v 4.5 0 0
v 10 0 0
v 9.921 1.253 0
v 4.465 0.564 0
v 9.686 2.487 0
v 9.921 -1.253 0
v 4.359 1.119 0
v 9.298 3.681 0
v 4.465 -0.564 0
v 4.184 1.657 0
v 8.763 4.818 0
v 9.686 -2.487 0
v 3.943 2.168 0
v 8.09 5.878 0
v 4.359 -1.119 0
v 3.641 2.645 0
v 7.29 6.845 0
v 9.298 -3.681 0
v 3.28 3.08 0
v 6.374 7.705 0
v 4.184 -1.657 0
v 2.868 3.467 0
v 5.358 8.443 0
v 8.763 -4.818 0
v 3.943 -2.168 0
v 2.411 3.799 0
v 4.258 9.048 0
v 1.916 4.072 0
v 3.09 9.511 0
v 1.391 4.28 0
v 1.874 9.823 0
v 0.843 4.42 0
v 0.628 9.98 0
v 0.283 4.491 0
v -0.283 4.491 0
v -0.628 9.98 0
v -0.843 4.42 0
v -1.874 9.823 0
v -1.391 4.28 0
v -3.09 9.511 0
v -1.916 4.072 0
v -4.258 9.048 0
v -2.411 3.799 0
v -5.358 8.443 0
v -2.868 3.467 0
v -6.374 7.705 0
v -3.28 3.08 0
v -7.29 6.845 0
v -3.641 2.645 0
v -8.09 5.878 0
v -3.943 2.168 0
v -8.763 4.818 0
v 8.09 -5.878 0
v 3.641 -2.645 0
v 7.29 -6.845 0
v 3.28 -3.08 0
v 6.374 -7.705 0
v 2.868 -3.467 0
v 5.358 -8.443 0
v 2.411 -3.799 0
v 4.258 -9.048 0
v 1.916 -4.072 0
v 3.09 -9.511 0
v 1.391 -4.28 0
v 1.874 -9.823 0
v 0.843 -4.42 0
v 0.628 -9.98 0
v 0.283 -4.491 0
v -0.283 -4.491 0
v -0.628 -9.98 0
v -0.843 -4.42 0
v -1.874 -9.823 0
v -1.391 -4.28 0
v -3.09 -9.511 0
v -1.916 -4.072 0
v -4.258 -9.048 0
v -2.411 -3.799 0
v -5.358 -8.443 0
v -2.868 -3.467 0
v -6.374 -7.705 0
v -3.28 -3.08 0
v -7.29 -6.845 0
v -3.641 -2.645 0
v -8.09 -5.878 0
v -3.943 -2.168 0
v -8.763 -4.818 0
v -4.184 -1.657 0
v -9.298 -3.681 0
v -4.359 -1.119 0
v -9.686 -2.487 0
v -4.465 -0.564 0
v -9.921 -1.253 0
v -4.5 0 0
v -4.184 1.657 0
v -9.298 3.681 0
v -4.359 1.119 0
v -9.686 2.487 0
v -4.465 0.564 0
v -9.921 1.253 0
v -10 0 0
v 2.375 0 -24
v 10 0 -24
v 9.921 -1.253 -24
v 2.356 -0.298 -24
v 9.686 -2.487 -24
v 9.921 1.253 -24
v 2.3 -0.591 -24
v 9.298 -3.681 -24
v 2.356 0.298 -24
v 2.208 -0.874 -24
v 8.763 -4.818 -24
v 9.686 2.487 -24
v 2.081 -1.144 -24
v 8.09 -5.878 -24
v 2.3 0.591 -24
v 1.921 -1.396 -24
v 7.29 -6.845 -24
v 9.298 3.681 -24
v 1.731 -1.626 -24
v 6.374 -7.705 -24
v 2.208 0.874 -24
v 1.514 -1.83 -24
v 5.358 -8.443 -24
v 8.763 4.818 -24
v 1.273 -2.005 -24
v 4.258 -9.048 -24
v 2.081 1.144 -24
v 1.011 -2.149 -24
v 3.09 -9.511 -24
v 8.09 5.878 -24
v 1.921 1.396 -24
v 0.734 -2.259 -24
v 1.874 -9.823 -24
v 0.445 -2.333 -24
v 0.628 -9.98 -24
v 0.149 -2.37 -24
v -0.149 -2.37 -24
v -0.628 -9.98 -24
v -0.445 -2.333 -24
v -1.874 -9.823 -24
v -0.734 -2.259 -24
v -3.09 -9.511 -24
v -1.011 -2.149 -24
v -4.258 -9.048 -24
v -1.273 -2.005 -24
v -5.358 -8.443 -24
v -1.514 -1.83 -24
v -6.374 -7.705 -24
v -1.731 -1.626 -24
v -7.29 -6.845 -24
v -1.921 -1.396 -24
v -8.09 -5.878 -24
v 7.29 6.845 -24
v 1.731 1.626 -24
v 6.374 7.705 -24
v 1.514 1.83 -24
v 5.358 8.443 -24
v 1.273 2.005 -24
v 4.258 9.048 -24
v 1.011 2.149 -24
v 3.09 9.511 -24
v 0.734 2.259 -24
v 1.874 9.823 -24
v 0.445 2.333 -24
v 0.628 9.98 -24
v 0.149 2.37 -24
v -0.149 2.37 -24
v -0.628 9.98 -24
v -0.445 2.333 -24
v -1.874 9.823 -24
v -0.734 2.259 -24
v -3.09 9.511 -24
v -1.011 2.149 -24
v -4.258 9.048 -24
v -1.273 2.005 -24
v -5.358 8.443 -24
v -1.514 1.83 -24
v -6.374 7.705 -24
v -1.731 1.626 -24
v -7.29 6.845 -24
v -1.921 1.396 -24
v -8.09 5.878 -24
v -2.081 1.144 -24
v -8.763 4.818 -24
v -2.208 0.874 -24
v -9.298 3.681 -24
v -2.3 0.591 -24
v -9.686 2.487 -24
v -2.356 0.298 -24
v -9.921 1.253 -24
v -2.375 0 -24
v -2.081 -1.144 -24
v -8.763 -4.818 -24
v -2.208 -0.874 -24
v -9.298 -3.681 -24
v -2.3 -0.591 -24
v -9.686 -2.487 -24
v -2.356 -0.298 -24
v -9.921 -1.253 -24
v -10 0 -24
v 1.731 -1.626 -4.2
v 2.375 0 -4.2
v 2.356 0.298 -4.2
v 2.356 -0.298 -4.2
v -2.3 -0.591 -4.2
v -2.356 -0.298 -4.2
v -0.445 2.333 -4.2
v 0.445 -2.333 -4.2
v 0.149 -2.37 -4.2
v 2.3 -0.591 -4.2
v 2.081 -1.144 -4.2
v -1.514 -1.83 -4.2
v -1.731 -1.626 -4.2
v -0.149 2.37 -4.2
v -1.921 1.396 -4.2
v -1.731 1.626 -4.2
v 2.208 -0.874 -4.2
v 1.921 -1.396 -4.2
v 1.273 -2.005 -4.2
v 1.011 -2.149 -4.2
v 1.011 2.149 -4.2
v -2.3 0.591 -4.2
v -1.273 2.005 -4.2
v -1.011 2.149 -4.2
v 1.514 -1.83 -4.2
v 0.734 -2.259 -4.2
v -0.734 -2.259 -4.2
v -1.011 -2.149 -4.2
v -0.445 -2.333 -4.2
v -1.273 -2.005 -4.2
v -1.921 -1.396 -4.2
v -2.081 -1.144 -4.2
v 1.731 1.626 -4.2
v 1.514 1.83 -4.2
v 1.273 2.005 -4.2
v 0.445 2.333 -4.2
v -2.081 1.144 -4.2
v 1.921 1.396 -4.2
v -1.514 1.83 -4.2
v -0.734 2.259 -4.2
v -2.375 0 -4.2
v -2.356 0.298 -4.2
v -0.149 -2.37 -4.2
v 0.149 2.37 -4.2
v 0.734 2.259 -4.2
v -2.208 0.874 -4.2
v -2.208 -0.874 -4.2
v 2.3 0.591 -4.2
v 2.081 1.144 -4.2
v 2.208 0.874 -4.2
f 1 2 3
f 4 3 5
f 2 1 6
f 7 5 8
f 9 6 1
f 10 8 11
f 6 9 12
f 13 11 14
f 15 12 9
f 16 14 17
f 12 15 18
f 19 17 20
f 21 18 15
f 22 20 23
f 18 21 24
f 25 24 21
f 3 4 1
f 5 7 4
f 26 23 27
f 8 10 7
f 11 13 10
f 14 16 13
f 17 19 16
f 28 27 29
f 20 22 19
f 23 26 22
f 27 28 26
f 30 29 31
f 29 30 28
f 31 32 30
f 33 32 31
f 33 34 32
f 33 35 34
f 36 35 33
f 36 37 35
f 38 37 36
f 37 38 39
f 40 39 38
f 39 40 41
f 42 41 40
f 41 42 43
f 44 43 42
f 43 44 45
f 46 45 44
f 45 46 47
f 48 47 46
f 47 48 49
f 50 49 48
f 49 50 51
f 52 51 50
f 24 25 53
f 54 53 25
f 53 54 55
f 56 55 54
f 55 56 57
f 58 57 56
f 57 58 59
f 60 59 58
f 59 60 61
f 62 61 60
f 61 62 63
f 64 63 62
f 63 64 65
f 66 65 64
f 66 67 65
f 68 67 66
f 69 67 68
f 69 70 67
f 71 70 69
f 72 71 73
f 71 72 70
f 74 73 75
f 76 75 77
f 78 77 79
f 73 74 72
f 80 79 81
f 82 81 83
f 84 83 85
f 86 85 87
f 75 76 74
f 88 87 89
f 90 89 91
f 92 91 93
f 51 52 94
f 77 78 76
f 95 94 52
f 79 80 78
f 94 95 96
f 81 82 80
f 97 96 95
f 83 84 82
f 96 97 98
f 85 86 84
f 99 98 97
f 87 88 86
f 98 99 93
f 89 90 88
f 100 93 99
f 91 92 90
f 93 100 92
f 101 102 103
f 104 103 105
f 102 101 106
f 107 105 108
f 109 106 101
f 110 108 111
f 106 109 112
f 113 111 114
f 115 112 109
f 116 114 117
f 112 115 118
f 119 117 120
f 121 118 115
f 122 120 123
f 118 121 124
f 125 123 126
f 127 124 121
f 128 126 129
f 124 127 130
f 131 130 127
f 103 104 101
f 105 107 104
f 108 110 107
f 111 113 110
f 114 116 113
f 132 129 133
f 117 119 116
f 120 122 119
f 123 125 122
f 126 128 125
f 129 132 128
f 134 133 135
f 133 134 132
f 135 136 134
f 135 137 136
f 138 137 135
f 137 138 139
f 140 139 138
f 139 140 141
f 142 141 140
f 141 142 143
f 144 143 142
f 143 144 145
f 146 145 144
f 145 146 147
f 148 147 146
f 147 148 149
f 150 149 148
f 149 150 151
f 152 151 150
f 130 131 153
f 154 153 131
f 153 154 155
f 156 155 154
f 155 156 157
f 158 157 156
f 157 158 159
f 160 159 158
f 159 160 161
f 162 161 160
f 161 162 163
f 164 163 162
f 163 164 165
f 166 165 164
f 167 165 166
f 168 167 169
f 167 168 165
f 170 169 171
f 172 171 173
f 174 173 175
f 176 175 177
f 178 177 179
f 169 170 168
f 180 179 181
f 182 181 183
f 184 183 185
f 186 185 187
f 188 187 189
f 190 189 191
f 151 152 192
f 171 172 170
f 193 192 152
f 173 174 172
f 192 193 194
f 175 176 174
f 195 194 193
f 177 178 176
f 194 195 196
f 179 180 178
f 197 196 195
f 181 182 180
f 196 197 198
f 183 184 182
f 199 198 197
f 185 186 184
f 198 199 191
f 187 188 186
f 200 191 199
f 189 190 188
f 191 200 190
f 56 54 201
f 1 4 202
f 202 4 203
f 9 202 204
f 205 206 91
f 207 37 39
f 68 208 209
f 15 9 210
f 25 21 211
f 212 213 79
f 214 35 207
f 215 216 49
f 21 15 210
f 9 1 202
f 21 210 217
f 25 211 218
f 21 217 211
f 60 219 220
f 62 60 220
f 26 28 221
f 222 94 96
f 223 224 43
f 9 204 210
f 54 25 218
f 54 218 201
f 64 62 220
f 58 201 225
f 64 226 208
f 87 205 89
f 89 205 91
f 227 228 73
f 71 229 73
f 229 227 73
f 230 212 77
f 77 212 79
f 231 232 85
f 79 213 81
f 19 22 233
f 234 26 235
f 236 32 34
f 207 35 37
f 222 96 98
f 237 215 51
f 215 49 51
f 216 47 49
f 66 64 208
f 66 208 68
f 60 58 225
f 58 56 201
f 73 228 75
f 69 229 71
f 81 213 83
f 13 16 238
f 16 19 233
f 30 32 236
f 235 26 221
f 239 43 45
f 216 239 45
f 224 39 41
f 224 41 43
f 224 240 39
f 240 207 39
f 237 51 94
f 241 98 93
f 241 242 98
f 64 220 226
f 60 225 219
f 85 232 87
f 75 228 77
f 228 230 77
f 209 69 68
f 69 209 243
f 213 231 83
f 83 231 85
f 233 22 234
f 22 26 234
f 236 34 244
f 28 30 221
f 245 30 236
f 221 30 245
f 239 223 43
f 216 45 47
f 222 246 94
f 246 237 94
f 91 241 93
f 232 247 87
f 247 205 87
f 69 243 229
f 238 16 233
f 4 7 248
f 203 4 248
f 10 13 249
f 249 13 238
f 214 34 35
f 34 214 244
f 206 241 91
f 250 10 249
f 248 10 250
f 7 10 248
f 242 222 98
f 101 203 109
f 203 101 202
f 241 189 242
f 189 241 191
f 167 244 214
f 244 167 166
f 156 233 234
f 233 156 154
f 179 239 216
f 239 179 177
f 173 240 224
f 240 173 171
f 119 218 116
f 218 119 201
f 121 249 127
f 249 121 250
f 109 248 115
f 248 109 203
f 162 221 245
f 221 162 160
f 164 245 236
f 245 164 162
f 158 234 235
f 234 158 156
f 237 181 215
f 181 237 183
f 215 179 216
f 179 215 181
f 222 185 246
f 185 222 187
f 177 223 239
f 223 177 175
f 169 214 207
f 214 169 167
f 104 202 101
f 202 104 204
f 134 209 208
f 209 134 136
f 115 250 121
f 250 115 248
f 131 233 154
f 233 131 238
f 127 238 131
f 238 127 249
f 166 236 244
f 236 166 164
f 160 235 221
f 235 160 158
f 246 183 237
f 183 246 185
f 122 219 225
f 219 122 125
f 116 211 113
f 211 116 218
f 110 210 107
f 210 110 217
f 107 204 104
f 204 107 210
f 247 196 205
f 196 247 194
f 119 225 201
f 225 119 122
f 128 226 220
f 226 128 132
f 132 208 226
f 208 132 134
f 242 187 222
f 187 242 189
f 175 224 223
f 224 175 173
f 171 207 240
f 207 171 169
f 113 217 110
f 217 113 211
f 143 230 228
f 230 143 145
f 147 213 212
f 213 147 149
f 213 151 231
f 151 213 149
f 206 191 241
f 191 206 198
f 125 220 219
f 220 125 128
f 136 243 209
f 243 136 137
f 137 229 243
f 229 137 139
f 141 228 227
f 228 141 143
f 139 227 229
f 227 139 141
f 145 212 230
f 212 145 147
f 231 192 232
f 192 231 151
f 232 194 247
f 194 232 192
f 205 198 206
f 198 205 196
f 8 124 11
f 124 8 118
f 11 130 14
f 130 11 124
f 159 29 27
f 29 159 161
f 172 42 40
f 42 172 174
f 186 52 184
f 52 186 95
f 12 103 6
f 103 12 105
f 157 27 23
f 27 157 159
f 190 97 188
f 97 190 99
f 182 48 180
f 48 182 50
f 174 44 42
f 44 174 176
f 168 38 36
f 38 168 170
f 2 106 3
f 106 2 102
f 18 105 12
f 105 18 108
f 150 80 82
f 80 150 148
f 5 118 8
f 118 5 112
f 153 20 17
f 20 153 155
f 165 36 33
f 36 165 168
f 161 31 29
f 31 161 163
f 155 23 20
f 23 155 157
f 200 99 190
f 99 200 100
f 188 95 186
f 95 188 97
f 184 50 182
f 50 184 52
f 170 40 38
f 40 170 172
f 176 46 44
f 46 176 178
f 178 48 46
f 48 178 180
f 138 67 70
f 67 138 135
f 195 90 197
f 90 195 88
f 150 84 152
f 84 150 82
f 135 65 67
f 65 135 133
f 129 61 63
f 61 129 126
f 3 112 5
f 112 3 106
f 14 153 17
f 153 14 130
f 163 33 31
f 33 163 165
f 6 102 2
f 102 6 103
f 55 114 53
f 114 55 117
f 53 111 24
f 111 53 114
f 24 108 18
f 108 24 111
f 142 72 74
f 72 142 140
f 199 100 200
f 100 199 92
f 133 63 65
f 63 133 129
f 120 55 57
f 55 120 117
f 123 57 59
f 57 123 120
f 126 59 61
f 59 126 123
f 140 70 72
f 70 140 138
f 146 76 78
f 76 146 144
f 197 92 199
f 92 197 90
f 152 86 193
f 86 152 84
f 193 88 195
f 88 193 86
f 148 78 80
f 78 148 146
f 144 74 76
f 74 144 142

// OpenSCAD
$fn = 50;


difference() {
	union() {
		translate(v = [0, 0, -24.0000000000]) {
			cylinder(h = 24, r = 10.0000000000);
		}
		cylinder(h = 0, r = 16.0000000000);
	}
	union() {
		translate(v = [0, 0, 0]) {
			rotate(a = [0, 0, 0]) {
				difference() {
					union() {
						#translate(v = [0, 0, -24.0000000000]) {
							cylinder(h = 24, r = 2.2500000000);
						}
						#translate(v = [0, 0, -4.2000000000]) {
							cylinder(h = 4.2000000000, r1 = 2.3750000000, r2 = 4.5000000000);
						}
						#translate(v = [0, 0, -24.0000000000]) {
							cylinder(h = 24, r = 2.3750000000);
						}
						#translate(v = [0, 0, -24.0000000000]) {
							cylinder(h = 24, r = 2.2500000000);
						}
					}
					union();
				}
			}
		}
	}
}
